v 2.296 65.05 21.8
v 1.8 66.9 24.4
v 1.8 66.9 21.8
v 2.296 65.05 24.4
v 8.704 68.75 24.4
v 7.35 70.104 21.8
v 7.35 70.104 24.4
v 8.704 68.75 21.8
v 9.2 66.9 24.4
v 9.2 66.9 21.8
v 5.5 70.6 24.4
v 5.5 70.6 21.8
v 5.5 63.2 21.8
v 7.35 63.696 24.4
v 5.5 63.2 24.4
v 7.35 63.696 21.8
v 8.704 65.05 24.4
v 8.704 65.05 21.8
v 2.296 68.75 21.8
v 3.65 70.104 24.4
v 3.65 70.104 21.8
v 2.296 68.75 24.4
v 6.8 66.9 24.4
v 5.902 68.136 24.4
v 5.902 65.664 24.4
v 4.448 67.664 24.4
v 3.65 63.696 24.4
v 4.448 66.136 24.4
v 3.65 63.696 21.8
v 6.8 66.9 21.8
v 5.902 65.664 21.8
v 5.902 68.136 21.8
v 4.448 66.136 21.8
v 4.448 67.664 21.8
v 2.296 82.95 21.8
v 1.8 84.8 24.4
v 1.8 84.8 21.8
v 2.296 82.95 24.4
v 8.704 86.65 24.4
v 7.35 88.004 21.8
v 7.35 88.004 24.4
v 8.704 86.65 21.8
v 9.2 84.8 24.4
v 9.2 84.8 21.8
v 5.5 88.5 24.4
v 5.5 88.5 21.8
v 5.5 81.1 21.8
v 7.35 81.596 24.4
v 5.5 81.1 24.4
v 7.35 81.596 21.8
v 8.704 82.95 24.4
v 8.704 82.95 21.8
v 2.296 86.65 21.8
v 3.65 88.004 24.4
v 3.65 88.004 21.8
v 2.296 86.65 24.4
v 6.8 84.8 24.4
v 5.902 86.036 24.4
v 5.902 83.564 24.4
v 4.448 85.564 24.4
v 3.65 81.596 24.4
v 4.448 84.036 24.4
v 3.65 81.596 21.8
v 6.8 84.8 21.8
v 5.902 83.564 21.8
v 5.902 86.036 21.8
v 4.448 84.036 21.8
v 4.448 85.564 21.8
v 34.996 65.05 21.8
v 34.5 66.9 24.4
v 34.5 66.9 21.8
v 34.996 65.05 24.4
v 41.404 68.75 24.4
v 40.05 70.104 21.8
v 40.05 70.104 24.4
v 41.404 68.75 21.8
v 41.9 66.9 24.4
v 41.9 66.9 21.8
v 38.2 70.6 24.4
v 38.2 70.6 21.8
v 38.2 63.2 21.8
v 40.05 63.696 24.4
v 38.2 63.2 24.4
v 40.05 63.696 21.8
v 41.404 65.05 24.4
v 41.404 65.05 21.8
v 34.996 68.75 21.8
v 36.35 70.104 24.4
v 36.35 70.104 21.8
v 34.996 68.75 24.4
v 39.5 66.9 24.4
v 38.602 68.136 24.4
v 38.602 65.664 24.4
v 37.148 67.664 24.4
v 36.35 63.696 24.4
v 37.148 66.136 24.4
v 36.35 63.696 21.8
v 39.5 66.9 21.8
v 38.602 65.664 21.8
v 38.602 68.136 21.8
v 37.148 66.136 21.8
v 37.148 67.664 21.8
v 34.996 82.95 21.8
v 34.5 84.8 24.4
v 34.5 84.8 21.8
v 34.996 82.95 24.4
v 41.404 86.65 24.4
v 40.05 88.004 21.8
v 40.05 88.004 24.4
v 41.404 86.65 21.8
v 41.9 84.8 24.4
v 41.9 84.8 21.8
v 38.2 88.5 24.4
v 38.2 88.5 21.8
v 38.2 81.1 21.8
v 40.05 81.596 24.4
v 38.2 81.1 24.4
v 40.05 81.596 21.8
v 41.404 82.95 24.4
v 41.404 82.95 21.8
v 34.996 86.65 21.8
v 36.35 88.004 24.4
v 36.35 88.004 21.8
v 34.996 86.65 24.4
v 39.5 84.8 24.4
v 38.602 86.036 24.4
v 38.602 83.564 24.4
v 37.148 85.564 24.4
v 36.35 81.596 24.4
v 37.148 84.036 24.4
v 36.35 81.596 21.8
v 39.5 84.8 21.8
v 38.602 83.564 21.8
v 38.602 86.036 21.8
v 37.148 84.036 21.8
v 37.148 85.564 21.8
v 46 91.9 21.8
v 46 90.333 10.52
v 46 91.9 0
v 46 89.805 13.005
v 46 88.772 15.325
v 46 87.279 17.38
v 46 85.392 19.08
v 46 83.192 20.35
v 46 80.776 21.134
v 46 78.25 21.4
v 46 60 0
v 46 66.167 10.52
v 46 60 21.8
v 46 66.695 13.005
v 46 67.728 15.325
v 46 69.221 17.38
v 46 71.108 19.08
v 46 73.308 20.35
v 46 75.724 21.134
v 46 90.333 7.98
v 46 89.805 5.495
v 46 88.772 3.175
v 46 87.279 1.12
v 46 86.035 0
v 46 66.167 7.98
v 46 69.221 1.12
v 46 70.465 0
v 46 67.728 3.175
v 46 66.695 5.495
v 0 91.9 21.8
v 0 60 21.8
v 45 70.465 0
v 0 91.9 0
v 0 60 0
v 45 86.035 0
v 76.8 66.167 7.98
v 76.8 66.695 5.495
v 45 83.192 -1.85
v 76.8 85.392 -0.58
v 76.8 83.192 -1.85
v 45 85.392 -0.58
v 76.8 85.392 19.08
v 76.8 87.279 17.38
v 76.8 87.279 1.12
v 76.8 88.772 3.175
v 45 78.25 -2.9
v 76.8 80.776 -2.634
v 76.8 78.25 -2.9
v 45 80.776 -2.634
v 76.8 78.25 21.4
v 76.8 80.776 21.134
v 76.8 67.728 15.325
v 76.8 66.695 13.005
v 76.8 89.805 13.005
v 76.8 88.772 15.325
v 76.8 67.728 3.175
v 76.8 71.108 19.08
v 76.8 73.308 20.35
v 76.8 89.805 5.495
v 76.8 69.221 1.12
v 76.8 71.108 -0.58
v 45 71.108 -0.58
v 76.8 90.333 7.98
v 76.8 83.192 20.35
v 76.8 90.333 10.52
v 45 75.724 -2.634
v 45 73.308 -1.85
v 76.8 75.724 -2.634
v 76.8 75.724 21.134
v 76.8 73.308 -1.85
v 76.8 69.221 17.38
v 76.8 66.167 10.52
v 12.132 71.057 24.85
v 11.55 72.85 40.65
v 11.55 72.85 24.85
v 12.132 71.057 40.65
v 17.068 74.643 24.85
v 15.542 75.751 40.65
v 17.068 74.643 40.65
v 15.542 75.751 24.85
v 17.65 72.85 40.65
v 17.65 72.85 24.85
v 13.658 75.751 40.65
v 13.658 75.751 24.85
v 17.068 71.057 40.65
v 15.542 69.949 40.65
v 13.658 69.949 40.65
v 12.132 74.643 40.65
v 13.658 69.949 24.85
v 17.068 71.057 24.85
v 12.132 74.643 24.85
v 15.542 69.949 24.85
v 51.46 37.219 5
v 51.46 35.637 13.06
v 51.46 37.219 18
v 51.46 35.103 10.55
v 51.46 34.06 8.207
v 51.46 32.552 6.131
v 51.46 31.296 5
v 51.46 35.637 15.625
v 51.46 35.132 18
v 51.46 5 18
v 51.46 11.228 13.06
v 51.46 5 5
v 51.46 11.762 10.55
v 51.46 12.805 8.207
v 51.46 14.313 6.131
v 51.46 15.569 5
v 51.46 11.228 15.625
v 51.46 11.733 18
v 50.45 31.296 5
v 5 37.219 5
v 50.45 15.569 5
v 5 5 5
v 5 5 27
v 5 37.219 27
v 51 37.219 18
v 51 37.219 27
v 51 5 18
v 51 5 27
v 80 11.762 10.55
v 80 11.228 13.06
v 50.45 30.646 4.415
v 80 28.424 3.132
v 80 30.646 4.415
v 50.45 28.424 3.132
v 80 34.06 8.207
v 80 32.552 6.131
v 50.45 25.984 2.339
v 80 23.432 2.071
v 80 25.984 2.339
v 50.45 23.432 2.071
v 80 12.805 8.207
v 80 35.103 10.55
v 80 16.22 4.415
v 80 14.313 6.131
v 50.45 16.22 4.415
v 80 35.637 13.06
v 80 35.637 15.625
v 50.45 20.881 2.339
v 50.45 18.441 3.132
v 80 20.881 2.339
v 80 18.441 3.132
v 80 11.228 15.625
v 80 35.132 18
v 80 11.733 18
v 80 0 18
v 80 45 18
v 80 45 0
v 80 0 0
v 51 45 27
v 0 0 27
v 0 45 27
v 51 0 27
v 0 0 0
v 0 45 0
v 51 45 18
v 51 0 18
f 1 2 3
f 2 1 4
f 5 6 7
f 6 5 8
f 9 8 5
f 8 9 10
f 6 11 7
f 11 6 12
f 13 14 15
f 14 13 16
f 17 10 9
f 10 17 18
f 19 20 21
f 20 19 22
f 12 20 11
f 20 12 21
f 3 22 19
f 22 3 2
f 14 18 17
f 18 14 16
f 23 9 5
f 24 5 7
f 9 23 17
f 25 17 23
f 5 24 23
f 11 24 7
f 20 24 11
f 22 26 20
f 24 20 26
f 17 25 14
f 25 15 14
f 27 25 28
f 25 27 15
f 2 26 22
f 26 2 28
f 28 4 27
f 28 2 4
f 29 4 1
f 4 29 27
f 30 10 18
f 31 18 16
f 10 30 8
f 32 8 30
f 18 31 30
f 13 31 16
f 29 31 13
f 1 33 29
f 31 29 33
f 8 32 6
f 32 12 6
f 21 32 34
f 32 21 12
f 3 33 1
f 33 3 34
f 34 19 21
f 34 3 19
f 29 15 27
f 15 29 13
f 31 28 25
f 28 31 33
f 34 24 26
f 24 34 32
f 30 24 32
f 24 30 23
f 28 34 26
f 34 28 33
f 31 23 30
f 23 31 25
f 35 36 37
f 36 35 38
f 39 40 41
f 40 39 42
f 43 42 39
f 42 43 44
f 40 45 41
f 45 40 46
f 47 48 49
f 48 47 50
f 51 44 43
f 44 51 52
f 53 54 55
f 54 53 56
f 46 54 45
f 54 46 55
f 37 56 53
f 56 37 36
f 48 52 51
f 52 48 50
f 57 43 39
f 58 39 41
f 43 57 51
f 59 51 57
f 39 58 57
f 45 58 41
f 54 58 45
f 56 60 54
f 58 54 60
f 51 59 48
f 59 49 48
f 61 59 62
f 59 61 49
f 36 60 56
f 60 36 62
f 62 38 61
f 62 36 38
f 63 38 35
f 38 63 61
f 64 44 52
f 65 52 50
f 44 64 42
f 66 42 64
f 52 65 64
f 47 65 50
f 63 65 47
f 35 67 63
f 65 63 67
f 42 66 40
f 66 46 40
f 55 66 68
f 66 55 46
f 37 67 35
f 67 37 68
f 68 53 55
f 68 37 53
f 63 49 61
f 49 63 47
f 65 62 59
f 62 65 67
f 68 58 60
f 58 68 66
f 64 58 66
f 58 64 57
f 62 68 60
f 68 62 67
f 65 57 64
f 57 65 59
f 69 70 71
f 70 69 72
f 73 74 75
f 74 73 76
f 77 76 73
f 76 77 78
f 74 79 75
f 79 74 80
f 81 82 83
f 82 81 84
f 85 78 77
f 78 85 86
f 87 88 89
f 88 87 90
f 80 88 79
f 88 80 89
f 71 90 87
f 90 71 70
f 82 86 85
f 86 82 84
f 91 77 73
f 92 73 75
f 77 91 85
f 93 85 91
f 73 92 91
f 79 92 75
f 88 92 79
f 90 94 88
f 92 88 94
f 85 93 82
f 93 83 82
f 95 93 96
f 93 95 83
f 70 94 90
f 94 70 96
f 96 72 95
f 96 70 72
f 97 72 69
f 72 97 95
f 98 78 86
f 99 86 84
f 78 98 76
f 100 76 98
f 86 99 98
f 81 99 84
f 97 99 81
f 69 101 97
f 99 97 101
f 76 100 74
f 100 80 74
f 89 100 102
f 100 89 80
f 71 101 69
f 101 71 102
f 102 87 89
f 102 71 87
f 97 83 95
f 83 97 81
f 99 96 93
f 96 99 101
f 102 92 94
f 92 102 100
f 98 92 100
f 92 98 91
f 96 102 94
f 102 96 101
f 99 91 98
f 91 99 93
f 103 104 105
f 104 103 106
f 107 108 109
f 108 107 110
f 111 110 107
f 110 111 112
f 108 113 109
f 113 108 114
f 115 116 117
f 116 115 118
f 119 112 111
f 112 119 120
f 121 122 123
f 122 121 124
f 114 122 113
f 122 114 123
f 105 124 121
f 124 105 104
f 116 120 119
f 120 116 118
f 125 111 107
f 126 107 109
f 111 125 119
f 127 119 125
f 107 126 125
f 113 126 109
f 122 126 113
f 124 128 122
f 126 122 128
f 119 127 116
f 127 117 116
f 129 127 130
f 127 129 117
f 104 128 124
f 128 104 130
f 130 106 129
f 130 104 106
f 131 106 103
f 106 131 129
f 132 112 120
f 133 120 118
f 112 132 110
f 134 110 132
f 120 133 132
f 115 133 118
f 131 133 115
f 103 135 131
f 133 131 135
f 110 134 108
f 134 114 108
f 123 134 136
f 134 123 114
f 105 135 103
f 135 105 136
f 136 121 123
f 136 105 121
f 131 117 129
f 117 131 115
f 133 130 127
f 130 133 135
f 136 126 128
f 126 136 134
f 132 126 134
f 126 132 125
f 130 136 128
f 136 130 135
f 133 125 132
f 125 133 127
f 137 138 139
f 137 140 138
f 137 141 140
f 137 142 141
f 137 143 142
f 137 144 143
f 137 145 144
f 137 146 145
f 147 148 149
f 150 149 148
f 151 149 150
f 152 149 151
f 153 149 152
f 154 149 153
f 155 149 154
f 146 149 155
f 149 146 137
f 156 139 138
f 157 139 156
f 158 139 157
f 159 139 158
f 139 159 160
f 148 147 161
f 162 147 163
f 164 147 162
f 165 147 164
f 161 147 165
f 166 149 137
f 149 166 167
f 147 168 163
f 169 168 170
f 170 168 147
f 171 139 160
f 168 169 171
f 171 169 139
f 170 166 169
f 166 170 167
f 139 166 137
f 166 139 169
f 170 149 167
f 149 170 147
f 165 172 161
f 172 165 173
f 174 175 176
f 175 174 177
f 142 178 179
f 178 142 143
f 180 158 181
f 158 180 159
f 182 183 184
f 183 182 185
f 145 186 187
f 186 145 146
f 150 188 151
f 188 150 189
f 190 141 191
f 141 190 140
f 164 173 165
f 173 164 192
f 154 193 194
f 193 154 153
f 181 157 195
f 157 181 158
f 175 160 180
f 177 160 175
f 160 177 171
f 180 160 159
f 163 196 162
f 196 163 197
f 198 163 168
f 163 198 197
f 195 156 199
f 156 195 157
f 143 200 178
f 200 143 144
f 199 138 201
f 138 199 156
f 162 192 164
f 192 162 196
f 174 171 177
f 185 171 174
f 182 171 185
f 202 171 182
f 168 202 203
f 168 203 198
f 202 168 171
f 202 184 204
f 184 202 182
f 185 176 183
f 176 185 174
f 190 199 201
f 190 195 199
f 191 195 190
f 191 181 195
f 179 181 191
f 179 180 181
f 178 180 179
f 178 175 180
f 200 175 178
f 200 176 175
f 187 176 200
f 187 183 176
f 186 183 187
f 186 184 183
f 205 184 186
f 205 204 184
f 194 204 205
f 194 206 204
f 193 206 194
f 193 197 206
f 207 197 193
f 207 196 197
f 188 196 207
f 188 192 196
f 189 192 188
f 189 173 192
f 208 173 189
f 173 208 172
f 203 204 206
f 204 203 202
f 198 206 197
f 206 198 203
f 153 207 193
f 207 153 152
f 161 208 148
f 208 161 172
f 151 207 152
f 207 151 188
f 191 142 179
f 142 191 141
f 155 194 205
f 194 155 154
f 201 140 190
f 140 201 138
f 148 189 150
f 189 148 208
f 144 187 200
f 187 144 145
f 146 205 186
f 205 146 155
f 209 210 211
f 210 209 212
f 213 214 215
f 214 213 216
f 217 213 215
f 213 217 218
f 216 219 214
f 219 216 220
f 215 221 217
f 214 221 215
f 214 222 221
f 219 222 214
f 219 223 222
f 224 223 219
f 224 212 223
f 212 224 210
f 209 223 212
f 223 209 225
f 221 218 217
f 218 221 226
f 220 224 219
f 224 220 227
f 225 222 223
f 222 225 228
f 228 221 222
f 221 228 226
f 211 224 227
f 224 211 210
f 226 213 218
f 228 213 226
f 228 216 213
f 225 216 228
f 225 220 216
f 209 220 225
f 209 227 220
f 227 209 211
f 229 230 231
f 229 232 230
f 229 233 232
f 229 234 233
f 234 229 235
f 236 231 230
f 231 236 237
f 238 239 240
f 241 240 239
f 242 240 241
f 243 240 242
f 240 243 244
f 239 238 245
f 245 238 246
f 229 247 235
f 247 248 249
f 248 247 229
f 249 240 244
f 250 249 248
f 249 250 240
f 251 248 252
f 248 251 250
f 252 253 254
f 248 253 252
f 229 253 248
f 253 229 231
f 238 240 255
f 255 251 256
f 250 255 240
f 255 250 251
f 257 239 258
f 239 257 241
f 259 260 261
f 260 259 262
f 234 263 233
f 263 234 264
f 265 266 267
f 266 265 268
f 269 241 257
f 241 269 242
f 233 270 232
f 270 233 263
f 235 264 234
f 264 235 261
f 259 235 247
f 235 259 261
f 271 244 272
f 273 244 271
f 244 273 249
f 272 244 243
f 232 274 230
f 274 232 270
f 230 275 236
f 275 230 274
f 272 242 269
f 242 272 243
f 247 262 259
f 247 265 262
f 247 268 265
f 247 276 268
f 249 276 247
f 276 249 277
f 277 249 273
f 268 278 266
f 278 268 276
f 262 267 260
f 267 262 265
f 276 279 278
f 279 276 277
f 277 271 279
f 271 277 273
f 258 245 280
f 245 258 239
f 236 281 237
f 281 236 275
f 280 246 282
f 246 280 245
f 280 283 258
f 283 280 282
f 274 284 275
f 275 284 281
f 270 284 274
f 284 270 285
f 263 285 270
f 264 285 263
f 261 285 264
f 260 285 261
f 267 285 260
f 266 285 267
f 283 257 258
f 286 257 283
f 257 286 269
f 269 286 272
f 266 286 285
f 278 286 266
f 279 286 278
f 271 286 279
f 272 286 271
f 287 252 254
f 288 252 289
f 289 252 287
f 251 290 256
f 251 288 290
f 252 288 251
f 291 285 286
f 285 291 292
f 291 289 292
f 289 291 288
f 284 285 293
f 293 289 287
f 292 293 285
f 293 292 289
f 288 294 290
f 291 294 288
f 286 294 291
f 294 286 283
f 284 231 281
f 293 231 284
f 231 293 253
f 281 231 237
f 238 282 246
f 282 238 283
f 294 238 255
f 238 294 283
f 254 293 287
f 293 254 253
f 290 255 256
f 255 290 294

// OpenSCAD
gearBlock=[46,31.9,21.8];

motorHeight=30.8;
motorDiameter=24.3;
motorOffset=[0,1.5,2.9];

axisDiameter=6.1;
axisHeight=15.8;
axisOffset=[14.6,15.9,gearBlock[2]];

mountingHoleDistance=[32.7,17.9,0];
mountingHoleOffset=[5.5,6.9,gearBlock[2]];
mountingHoleOuter=7.4;
mountingHoleInner=2.6;
mountingHoleZ=2.6;

debug=0;


// ========================================================================
translate([0,60,0]) GearMotor();
translate([0, 0,0]) GearMotorHolder();
// ========================================================================

module GearMotorHolder(){
if ( debug){
            translate([5,5,5])
                GearMotor();
}
    difference(){
        
        // Base Block
        cube([80,45,27]);

        // Keep motor Free
        translate([51,-1,18])
            cube([90,50,20]);

        // Motor
        translate([5,5,5])
            scale(1.01*[1,1,1])
                GearMotor();
    }
}


module GearMotor(){
    color("silver"){
        // Gear Block
        cube(gearBlock);

        // Motor
        translate(   [gearBlock[0],gearBlock[1],0]
                   + [0,-motorDiameter/2,motorDiameter/2]
                   - motorOffset
                   - [1,0,0] // For Overlap
                  )
            rotate([0,90,0])
                cylinder(h=motorHeight+1,d=motorDiameter);
                
                
        // Axis
        translate(
                  +[0,-axisDiameter/2,axisDiameter/2]
                  +axisOffset
                  )
        //    rotate([0,90,0])
                cylinder(h=axisHeight,d=axisDiameter);

        // Mounting Holes
        translate(mountingHoleOffset){
            for(x=[0,mountingHoleDistance[0]]){
                for(y=[0,mountingHoleDistance[1]]){
                    translate([x,y,0])
                        MoutingHole();
                }
            }
        }
    }
    
}

module MoutingHole(){
    difference(){
        cylinder(d=mountingHoleOuter,h=mountingHoleZ);
        translate([0,0,-.5])
            cylinder(d=mountingHoleInner,h=mountingHoleZ+1);
    }
}
